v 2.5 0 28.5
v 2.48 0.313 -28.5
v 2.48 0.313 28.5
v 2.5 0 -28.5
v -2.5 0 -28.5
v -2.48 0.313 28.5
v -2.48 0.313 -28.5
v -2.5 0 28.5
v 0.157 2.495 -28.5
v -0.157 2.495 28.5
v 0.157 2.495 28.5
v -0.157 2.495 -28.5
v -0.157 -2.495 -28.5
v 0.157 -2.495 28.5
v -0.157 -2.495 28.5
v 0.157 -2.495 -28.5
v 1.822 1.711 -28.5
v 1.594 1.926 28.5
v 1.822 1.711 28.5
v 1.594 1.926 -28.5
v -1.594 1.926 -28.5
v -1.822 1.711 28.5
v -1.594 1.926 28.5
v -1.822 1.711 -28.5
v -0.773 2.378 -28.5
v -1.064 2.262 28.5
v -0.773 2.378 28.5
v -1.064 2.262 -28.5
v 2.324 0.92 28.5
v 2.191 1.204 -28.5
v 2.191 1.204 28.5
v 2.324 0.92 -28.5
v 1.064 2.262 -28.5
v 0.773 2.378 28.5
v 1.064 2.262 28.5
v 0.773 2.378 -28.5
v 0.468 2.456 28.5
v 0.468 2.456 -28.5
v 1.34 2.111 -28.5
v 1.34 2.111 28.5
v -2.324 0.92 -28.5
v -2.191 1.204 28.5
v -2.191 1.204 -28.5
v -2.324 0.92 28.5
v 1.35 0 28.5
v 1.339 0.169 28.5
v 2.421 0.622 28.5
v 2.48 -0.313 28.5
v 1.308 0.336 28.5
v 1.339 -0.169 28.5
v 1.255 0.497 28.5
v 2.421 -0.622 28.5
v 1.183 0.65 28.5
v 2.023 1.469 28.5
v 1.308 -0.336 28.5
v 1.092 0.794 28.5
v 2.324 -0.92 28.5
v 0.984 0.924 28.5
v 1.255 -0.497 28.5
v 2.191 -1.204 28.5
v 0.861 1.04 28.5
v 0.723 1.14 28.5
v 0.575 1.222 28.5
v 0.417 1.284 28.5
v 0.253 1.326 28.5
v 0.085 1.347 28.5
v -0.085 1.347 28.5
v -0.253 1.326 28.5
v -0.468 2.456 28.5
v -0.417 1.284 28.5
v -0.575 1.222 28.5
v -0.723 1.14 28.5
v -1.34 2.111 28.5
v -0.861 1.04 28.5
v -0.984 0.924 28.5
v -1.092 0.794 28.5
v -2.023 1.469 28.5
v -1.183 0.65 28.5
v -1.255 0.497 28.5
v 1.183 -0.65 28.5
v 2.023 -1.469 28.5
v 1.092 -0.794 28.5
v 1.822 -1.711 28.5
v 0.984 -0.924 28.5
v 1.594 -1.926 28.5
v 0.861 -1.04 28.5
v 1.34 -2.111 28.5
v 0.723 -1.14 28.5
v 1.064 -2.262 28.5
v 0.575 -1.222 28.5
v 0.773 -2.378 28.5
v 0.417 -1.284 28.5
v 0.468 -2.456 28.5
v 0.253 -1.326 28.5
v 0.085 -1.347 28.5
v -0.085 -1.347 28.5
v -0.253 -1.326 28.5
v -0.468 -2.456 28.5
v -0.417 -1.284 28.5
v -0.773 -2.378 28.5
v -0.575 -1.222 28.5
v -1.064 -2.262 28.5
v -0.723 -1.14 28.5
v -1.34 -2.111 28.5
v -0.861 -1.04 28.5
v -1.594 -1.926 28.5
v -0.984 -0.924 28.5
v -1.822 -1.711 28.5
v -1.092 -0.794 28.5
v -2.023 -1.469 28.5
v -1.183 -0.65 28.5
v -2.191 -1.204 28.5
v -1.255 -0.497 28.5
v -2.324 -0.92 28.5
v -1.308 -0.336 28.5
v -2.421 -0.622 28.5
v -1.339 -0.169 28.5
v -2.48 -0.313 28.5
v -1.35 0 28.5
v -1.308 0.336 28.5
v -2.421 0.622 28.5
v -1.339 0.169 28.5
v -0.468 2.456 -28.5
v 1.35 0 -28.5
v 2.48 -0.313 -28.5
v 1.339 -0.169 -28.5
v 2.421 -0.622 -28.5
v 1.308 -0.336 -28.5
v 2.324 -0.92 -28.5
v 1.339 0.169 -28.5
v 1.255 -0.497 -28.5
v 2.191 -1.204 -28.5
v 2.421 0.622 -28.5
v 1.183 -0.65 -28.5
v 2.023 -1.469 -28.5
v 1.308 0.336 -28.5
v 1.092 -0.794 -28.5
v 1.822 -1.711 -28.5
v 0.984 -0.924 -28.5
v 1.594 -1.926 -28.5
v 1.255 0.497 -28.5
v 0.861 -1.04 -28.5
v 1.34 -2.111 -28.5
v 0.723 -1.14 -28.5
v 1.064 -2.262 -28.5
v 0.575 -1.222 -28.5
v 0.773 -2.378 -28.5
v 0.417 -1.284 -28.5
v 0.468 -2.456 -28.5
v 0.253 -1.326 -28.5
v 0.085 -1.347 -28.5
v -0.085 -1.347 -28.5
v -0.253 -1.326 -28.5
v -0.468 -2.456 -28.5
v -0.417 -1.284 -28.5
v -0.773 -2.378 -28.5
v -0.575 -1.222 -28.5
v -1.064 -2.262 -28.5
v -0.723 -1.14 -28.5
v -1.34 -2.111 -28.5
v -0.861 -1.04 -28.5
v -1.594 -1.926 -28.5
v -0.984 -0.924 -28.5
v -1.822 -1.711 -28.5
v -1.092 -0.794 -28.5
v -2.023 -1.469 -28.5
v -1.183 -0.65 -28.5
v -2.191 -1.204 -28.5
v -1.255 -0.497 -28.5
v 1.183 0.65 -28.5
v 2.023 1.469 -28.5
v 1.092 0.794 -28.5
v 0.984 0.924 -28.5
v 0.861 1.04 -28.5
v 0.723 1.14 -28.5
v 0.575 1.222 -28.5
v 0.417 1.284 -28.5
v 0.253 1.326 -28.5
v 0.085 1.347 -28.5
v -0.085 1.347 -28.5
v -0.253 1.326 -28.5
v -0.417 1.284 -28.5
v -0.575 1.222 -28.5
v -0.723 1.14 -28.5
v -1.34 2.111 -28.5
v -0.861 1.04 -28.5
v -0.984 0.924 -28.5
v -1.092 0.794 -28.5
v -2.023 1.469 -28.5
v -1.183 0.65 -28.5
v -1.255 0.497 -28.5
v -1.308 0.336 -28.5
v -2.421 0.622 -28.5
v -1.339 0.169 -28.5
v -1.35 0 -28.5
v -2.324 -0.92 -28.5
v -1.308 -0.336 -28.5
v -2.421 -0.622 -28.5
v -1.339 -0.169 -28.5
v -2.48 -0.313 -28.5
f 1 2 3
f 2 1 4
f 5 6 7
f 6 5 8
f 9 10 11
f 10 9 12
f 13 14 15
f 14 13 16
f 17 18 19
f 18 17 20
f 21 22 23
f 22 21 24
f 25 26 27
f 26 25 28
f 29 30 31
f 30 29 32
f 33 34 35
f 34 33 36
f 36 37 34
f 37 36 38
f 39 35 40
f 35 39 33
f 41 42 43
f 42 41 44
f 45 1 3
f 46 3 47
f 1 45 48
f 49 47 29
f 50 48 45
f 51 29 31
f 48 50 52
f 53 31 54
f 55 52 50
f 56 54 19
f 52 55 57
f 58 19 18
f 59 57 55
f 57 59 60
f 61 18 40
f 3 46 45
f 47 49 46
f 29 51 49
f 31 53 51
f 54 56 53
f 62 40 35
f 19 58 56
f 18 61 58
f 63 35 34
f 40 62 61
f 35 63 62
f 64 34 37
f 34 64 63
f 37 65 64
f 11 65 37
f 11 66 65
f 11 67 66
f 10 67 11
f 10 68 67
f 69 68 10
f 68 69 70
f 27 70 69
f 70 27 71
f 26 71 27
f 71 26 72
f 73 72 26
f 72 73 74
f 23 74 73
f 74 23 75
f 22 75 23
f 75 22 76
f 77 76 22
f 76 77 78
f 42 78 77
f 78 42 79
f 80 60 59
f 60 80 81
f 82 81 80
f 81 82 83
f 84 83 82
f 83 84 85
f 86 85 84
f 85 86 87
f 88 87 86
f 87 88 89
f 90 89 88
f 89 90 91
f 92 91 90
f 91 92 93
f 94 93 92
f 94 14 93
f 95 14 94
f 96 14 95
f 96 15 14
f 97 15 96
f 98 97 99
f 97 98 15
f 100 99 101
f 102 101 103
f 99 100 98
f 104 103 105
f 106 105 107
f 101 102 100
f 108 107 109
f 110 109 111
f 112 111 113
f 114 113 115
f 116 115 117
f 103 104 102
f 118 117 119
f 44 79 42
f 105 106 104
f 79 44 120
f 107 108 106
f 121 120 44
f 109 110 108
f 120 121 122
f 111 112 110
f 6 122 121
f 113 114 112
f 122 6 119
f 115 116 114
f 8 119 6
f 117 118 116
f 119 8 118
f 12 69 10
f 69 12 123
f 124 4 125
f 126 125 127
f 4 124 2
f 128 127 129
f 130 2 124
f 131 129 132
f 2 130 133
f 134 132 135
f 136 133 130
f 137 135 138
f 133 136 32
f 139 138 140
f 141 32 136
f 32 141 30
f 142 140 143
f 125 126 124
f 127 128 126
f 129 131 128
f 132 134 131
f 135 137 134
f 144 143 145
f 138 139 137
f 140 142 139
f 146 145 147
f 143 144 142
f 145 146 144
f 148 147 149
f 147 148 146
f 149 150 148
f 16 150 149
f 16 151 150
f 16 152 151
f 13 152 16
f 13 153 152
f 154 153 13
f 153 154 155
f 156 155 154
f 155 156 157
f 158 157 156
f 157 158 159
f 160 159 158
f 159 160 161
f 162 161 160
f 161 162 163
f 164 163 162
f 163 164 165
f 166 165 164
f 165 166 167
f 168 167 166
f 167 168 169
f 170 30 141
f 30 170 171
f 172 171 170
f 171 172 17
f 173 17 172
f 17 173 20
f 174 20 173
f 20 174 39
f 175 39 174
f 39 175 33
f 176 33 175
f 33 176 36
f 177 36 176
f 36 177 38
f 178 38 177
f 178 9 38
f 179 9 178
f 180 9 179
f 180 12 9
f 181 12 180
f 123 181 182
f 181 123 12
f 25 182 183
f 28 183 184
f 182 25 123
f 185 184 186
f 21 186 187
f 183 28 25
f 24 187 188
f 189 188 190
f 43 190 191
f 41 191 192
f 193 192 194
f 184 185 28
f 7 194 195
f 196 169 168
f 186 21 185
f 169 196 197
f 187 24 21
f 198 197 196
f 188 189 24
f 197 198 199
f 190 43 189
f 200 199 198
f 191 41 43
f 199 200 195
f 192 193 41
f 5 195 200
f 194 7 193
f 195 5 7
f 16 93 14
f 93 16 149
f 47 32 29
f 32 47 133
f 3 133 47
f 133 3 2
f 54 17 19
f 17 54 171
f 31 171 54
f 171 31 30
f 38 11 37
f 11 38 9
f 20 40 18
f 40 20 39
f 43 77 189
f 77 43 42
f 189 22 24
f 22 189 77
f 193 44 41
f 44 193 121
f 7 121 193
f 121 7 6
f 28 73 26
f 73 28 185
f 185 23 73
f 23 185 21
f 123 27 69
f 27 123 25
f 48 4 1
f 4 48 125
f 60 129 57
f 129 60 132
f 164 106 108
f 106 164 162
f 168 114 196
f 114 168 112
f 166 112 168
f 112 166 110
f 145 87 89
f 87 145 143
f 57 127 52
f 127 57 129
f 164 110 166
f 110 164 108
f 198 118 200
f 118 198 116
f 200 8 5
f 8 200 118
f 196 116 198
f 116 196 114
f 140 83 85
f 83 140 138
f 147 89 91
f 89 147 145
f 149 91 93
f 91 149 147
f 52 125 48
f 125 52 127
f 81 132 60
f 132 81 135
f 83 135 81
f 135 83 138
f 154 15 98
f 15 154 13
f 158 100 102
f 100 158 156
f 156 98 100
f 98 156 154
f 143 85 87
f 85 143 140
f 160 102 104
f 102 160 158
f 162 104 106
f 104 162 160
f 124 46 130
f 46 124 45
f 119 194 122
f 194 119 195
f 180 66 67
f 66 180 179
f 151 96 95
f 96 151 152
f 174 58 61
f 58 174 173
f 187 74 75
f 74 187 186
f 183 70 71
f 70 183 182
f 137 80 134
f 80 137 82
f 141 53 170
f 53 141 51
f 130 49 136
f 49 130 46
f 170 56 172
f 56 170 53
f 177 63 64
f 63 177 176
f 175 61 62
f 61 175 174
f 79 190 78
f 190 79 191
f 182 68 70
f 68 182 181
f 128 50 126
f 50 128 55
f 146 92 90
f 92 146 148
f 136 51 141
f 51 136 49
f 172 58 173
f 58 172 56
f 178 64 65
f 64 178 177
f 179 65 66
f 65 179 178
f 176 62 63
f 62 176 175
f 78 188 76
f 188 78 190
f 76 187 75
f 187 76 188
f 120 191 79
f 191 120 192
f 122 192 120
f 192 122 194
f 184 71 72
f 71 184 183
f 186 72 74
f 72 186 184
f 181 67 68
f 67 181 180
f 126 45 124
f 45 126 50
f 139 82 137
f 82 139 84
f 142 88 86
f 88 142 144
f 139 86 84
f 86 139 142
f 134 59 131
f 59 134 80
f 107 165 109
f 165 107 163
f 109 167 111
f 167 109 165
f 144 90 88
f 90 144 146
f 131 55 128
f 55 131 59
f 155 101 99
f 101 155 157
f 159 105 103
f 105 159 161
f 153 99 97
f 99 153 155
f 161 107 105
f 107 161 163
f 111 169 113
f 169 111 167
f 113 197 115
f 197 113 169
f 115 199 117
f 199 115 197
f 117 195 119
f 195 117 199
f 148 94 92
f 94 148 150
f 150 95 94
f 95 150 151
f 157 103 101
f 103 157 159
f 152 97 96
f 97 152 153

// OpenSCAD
$fn = 50;


difference() {
	union() {
		translate(v = [0, 0, -28.5000000000]) {
			cylinder(h = 57, r = 2.5000000000);
		}
	}
	union() {
		translate(v = [0, 0, -100.0000000000]) {
			cylinder(h = 200, r = 1.3500000000);
		}
	}
}
